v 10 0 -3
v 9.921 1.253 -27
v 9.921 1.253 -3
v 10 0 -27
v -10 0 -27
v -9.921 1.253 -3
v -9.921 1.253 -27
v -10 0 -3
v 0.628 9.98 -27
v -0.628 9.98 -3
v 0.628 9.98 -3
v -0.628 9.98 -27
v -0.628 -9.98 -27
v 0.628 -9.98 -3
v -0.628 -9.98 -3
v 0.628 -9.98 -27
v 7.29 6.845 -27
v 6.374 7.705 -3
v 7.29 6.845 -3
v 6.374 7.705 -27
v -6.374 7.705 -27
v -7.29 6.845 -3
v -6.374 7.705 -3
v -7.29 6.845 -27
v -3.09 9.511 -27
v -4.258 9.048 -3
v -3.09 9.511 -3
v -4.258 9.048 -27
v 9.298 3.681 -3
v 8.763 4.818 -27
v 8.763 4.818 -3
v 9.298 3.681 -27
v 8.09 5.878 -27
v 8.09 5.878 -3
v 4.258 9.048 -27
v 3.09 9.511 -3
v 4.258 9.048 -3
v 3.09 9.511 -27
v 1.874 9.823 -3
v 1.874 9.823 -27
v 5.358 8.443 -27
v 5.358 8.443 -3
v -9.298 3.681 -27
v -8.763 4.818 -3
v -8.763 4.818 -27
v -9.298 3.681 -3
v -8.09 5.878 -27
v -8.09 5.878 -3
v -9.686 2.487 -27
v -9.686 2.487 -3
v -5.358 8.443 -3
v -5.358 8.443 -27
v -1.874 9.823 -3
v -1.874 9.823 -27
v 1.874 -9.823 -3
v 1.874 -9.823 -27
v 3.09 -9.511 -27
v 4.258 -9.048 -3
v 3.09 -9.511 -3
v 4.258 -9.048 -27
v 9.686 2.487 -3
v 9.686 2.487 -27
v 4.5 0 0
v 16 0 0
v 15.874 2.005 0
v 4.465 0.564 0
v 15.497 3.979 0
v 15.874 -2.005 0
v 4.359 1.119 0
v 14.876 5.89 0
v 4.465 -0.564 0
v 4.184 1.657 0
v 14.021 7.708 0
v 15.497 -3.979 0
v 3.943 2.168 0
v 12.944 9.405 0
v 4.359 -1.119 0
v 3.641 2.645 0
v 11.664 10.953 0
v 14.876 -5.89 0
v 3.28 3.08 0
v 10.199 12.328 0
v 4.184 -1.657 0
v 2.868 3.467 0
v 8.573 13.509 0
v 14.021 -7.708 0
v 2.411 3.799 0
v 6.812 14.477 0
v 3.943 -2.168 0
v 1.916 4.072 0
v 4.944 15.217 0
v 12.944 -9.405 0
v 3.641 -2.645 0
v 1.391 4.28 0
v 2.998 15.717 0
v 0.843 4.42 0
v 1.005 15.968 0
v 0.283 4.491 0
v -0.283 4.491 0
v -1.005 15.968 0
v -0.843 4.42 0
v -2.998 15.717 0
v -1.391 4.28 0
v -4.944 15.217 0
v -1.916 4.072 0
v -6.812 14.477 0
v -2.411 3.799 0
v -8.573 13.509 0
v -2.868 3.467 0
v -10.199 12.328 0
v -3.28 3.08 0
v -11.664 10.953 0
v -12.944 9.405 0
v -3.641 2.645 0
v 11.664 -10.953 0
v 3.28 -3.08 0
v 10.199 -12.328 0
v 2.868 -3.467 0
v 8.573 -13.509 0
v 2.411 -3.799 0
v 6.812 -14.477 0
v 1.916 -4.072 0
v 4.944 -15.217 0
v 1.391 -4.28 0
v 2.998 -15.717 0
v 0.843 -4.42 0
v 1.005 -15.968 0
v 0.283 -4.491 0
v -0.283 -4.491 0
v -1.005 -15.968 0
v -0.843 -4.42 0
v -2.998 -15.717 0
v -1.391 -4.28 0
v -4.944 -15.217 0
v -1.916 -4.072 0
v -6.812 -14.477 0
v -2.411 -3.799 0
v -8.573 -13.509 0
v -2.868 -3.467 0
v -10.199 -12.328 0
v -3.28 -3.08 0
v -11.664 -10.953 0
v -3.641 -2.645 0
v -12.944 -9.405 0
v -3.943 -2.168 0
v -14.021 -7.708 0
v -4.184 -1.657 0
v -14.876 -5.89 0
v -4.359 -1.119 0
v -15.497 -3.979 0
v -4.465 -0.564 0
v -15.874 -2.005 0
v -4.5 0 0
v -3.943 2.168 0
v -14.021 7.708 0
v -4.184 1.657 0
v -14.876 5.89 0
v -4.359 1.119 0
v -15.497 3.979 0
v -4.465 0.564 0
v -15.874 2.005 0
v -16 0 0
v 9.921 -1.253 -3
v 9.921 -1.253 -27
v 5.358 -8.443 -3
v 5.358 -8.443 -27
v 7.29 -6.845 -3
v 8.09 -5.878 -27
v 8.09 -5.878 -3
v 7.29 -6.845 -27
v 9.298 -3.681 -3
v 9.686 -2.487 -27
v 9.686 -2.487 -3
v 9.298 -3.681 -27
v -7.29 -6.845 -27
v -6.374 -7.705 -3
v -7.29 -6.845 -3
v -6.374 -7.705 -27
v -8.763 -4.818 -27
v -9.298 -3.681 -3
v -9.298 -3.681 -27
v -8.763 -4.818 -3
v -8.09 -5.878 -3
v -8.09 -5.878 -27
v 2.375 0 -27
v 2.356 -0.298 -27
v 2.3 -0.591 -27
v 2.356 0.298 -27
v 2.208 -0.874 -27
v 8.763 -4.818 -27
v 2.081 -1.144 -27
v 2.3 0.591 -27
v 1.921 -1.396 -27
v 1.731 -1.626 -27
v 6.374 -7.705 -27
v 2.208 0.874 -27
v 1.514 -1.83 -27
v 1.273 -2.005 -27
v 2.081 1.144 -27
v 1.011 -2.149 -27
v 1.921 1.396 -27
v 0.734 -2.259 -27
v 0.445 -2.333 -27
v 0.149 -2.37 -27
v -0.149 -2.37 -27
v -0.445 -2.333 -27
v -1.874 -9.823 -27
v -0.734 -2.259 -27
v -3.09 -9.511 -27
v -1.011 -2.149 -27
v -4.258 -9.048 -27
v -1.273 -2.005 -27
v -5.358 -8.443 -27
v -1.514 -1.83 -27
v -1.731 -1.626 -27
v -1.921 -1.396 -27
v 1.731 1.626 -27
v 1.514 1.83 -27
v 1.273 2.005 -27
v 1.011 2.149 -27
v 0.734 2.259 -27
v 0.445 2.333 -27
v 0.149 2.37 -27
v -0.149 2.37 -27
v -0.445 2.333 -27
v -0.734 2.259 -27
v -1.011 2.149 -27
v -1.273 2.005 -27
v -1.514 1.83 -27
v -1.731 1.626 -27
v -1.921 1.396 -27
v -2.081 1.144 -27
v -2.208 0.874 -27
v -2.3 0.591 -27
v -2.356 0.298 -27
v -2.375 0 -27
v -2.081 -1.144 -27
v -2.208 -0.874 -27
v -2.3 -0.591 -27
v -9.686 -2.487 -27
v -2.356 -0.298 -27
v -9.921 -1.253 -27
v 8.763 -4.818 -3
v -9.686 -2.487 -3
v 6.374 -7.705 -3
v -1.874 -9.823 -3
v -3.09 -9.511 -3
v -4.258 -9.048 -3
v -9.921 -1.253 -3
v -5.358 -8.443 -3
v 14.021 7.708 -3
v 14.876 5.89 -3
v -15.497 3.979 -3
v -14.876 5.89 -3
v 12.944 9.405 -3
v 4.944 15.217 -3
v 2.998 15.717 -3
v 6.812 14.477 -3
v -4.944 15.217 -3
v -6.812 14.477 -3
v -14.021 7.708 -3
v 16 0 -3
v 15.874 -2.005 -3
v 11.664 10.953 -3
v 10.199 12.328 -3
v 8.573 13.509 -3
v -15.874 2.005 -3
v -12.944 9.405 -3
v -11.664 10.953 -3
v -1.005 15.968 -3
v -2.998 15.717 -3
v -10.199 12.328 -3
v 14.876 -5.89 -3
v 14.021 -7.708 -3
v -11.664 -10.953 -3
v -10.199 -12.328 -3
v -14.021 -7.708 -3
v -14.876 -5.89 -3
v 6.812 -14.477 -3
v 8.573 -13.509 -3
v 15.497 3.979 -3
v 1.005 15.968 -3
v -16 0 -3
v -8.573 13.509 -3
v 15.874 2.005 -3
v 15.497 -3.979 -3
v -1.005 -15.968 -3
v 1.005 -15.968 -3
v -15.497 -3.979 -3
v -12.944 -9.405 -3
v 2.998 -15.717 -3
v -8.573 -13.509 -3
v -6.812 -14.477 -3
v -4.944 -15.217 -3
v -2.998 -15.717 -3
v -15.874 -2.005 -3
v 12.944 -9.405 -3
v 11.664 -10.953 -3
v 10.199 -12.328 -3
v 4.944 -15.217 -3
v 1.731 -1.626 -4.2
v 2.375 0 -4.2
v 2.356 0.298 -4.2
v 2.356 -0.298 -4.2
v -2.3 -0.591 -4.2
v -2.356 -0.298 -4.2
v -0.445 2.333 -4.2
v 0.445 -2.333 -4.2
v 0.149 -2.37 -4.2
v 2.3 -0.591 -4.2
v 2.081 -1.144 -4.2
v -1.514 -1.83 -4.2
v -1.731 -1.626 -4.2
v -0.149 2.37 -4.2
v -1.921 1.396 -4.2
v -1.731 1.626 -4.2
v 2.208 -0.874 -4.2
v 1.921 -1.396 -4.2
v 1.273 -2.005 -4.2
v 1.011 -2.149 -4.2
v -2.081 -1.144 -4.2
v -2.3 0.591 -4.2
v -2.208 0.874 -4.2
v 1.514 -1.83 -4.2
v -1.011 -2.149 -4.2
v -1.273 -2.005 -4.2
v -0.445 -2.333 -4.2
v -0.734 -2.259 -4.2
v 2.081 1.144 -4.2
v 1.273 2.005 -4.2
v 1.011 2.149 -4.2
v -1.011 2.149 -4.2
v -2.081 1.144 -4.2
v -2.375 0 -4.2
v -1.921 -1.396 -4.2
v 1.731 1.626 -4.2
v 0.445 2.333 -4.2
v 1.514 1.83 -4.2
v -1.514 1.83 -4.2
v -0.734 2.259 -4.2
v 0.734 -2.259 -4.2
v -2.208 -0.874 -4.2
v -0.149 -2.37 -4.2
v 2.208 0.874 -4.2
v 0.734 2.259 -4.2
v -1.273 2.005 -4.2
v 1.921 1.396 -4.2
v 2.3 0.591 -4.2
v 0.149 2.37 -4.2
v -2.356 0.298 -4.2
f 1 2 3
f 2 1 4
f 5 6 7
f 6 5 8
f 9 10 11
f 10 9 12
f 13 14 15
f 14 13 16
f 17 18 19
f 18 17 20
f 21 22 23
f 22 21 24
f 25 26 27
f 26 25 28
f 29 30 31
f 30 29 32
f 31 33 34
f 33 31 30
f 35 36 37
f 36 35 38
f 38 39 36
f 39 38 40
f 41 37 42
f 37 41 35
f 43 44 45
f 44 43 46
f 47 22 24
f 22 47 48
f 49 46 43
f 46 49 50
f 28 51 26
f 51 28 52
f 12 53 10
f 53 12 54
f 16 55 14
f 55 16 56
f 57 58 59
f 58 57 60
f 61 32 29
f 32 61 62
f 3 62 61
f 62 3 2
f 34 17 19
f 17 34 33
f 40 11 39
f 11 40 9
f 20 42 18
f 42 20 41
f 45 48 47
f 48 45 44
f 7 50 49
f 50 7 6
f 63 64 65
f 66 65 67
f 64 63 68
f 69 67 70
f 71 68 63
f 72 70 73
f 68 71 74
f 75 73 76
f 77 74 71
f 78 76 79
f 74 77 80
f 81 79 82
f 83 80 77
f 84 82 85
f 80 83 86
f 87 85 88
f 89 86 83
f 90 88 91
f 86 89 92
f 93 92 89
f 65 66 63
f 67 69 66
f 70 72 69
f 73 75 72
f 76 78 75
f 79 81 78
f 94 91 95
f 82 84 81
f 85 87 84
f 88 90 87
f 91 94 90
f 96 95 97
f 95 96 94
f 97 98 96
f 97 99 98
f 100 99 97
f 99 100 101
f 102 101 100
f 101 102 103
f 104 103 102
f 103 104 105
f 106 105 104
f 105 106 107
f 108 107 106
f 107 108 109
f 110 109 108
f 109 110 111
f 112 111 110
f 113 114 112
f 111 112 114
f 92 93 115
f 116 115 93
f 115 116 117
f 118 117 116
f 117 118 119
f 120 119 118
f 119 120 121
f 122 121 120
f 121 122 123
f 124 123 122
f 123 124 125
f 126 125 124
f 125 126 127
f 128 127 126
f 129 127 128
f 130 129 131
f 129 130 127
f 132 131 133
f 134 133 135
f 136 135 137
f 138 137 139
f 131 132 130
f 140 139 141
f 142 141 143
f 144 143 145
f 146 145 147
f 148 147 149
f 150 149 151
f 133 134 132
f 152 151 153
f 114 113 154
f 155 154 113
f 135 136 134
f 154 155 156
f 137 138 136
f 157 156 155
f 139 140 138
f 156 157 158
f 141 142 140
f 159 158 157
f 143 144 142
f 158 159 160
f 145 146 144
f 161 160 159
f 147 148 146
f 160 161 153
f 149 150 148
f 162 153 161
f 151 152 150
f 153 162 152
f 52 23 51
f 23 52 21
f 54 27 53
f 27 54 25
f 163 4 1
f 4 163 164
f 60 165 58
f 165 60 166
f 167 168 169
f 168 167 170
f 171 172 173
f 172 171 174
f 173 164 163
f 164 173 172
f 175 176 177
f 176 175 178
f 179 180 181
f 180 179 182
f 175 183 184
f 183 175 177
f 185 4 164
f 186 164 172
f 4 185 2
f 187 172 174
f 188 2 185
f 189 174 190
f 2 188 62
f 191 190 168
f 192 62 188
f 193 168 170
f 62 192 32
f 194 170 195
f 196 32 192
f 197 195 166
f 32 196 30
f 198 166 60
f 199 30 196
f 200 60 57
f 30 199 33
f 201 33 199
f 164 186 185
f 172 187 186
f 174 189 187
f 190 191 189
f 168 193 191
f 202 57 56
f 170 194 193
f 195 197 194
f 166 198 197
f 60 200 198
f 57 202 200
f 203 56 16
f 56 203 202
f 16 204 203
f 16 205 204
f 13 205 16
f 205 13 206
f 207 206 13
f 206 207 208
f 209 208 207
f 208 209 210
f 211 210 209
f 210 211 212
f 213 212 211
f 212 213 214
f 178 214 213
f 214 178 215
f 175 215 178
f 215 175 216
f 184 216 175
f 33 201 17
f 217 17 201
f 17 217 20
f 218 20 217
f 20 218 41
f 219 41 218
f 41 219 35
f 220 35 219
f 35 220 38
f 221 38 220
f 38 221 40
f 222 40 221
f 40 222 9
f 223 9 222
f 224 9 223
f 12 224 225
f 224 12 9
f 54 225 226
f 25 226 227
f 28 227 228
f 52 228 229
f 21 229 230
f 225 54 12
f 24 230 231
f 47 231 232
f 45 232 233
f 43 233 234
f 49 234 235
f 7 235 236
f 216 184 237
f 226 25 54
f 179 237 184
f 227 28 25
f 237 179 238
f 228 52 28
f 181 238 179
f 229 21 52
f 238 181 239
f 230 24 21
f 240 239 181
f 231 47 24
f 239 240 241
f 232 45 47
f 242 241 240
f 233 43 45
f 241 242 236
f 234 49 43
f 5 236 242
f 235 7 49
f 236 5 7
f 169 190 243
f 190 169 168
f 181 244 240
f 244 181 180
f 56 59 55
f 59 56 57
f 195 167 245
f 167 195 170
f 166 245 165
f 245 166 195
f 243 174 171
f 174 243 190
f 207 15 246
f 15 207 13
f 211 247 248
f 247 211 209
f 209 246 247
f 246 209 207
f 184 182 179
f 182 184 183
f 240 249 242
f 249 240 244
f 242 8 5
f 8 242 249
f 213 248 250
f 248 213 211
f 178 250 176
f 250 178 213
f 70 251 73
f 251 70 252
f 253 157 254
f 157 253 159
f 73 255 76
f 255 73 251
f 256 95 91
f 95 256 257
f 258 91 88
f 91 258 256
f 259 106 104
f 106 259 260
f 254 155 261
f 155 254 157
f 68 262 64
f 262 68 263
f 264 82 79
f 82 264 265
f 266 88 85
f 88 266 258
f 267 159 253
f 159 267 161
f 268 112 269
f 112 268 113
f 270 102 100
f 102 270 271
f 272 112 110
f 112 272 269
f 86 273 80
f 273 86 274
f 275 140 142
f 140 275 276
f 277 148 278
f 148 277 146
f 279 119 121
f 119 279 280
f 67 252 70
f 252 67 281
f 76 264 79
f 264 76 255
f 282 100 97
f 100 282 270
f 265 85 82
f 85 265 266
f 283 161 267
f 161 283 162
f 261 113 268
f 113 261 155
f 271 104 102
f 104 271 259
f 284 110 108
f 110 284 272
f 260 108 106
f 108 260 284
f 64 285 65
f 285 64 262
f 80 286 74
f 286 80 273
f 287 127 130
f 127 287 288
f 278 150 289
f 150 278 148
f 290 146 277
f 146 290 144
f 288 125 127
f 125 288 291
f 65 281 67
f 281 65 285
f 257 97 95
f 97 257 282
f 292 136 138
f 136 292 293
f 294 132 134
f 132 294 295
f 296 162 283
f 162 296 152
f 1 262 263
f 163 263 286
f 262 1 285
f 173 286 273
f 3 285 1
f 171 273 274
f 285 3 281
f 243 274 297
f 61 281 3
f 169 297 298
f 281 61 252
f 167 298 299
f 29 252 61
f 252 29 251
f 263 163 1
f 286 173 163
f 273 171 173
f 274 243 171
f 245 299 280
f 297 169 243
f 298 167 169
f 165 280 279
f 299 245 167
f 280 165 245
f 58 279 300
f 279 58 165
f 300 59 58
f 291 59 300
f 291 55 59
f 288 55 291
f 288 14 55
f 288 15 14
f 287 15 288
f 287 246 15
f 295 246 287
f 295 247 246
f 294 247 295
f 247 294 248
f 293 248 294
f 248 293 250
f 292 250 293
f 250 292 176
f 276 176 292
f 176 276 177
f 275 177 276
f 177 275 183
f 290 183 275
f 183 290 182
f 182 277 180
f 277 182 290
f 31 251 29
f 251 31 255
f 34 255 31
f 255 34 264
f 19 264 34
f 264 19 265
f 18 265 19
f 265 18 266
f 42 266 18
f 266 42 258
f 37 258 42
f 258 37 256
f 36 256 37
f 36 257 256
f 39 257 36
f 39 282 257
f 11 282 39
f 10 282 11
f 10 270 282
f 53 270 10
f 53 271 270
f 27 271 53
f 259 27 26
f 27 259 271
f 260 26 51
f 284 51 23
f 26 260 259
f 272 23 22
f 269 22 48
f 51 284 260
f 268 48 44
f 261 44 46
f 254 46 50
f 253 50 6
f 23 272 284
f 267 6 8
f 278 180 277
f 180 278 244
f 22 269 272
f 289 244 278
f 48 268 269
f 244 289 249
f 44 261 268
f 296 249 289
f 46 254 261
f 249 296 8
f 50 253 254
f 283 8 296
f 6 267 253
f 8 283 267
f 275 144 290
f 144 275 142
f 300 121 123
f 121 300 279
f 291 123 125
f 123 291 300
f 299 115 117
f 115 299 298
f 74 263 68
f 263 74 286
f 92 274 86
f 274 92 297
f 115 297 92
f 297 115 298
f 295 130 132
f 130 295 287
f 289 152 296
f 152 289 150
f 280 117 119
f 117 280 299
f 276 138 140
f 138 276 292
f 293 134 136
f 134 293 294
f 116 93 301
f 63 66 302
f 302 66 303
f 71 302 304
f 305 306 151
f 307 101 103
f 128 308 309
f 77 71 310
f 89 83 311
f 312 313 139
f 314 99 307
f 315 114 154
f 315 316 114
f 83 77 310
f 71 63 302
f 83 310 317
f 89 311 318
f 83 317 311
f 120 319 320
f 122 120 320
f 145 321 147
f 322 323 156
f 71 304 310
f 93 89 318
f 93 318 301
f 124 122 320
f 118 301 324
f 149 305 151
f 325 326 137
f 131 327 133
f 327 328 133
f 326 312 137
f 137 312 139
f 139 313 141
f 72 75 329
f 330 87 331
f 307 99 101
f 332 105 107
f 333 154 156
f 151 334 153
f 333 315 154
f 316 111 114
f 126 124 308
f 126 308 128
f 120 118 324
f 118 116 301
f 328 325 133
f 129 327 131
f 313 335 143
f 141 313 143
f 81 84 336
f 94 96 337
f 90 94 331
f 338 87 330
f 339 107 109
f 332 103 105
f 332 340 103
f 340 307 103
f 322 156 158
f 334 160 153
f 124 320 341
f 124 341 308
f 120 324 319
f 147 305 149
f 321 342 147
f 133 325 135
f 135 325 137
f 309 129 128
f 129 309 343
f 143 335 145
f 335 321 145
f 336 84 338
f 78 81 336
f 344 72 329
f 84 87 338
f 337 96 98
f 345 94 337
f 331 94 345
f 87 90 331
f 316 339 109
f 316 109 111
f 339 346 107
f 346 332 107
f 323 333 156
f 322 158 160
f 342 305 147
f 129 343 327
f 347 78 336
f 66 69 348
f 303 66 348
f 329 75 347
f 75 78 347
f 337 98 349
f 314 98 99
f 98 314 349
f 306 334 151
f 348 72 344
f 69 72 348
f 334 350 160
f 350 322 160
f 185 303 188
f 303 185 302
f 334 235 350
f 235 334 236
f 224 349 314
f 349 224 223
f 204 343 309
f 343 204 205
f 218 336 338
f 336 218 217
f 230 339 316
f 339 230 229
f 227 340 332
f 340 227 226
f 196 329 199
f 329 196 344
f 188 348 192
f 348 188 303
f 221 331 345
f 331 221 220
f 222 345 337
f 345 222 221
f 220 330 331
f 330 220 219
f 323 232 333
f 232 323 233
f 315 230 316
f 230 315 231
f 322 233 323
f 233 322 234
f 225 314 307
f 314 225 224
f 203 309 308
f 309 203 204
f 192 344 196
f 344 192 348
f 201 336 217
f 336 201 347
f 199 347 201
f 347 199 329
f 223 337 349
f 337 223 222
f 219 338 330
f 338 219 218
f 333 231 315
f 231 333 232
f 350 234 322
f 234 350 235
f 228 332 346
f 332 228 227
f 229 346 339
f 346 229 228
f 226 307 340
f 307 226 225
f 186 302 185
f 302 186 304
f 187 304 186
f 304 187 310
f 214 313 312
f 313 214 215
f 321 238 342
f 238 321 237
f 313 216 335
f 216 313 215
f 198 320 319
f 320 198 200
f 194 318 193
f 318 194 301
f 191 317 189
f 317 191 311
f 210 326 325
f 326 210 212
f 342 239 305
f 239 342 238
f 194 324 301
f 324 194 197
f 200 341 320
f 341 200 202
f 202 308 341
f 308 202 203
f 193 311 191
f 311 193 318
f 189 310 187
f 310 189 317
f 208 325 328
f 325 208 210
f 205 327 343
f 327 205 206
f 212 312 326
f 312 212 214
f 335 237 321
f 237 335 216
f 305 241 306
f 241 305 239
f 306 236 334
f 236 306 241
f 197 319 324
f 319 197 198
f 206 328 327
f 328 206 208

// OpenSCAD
$fn = 50;


difference() {
	union() {
		translate(v = [0, 0, -27.0000000000]) {
			cylinder(h = 27, r = 10.0000000000);
		}
		translate(v = [0, 0, -3.0000000000]) {
			cylinder(h = 3, r = 16.0000000000);
		}
	}
	union() {
		translate(v = [0, 0, 0]) {
			rotate(a = [0, 0, 0]) {
				difference() {
					union() {
						#translate(v = [0, 0, -27.0000000000]) {
							cylinder(h = 27, r = 2.2500000000);
						}
						#translate(v = [0, 0, -4.2000000000]) {
							cylinder(h = 4.2000000000, r = 10.0000000000, r1 = 2.3750000000, r2 = 4.5000000000);
						}
						#translate(v = [0, 0, -27.0000000000]) {
							cylinder(h = 27, r = 2.3750000000);
						}
						#translate(v = [0, 0, -27.0000000000]) {
							cylinder(h = 27, r = 2.2500000000);
						}
					}
					union();
				}
			}
		}
	}
}
